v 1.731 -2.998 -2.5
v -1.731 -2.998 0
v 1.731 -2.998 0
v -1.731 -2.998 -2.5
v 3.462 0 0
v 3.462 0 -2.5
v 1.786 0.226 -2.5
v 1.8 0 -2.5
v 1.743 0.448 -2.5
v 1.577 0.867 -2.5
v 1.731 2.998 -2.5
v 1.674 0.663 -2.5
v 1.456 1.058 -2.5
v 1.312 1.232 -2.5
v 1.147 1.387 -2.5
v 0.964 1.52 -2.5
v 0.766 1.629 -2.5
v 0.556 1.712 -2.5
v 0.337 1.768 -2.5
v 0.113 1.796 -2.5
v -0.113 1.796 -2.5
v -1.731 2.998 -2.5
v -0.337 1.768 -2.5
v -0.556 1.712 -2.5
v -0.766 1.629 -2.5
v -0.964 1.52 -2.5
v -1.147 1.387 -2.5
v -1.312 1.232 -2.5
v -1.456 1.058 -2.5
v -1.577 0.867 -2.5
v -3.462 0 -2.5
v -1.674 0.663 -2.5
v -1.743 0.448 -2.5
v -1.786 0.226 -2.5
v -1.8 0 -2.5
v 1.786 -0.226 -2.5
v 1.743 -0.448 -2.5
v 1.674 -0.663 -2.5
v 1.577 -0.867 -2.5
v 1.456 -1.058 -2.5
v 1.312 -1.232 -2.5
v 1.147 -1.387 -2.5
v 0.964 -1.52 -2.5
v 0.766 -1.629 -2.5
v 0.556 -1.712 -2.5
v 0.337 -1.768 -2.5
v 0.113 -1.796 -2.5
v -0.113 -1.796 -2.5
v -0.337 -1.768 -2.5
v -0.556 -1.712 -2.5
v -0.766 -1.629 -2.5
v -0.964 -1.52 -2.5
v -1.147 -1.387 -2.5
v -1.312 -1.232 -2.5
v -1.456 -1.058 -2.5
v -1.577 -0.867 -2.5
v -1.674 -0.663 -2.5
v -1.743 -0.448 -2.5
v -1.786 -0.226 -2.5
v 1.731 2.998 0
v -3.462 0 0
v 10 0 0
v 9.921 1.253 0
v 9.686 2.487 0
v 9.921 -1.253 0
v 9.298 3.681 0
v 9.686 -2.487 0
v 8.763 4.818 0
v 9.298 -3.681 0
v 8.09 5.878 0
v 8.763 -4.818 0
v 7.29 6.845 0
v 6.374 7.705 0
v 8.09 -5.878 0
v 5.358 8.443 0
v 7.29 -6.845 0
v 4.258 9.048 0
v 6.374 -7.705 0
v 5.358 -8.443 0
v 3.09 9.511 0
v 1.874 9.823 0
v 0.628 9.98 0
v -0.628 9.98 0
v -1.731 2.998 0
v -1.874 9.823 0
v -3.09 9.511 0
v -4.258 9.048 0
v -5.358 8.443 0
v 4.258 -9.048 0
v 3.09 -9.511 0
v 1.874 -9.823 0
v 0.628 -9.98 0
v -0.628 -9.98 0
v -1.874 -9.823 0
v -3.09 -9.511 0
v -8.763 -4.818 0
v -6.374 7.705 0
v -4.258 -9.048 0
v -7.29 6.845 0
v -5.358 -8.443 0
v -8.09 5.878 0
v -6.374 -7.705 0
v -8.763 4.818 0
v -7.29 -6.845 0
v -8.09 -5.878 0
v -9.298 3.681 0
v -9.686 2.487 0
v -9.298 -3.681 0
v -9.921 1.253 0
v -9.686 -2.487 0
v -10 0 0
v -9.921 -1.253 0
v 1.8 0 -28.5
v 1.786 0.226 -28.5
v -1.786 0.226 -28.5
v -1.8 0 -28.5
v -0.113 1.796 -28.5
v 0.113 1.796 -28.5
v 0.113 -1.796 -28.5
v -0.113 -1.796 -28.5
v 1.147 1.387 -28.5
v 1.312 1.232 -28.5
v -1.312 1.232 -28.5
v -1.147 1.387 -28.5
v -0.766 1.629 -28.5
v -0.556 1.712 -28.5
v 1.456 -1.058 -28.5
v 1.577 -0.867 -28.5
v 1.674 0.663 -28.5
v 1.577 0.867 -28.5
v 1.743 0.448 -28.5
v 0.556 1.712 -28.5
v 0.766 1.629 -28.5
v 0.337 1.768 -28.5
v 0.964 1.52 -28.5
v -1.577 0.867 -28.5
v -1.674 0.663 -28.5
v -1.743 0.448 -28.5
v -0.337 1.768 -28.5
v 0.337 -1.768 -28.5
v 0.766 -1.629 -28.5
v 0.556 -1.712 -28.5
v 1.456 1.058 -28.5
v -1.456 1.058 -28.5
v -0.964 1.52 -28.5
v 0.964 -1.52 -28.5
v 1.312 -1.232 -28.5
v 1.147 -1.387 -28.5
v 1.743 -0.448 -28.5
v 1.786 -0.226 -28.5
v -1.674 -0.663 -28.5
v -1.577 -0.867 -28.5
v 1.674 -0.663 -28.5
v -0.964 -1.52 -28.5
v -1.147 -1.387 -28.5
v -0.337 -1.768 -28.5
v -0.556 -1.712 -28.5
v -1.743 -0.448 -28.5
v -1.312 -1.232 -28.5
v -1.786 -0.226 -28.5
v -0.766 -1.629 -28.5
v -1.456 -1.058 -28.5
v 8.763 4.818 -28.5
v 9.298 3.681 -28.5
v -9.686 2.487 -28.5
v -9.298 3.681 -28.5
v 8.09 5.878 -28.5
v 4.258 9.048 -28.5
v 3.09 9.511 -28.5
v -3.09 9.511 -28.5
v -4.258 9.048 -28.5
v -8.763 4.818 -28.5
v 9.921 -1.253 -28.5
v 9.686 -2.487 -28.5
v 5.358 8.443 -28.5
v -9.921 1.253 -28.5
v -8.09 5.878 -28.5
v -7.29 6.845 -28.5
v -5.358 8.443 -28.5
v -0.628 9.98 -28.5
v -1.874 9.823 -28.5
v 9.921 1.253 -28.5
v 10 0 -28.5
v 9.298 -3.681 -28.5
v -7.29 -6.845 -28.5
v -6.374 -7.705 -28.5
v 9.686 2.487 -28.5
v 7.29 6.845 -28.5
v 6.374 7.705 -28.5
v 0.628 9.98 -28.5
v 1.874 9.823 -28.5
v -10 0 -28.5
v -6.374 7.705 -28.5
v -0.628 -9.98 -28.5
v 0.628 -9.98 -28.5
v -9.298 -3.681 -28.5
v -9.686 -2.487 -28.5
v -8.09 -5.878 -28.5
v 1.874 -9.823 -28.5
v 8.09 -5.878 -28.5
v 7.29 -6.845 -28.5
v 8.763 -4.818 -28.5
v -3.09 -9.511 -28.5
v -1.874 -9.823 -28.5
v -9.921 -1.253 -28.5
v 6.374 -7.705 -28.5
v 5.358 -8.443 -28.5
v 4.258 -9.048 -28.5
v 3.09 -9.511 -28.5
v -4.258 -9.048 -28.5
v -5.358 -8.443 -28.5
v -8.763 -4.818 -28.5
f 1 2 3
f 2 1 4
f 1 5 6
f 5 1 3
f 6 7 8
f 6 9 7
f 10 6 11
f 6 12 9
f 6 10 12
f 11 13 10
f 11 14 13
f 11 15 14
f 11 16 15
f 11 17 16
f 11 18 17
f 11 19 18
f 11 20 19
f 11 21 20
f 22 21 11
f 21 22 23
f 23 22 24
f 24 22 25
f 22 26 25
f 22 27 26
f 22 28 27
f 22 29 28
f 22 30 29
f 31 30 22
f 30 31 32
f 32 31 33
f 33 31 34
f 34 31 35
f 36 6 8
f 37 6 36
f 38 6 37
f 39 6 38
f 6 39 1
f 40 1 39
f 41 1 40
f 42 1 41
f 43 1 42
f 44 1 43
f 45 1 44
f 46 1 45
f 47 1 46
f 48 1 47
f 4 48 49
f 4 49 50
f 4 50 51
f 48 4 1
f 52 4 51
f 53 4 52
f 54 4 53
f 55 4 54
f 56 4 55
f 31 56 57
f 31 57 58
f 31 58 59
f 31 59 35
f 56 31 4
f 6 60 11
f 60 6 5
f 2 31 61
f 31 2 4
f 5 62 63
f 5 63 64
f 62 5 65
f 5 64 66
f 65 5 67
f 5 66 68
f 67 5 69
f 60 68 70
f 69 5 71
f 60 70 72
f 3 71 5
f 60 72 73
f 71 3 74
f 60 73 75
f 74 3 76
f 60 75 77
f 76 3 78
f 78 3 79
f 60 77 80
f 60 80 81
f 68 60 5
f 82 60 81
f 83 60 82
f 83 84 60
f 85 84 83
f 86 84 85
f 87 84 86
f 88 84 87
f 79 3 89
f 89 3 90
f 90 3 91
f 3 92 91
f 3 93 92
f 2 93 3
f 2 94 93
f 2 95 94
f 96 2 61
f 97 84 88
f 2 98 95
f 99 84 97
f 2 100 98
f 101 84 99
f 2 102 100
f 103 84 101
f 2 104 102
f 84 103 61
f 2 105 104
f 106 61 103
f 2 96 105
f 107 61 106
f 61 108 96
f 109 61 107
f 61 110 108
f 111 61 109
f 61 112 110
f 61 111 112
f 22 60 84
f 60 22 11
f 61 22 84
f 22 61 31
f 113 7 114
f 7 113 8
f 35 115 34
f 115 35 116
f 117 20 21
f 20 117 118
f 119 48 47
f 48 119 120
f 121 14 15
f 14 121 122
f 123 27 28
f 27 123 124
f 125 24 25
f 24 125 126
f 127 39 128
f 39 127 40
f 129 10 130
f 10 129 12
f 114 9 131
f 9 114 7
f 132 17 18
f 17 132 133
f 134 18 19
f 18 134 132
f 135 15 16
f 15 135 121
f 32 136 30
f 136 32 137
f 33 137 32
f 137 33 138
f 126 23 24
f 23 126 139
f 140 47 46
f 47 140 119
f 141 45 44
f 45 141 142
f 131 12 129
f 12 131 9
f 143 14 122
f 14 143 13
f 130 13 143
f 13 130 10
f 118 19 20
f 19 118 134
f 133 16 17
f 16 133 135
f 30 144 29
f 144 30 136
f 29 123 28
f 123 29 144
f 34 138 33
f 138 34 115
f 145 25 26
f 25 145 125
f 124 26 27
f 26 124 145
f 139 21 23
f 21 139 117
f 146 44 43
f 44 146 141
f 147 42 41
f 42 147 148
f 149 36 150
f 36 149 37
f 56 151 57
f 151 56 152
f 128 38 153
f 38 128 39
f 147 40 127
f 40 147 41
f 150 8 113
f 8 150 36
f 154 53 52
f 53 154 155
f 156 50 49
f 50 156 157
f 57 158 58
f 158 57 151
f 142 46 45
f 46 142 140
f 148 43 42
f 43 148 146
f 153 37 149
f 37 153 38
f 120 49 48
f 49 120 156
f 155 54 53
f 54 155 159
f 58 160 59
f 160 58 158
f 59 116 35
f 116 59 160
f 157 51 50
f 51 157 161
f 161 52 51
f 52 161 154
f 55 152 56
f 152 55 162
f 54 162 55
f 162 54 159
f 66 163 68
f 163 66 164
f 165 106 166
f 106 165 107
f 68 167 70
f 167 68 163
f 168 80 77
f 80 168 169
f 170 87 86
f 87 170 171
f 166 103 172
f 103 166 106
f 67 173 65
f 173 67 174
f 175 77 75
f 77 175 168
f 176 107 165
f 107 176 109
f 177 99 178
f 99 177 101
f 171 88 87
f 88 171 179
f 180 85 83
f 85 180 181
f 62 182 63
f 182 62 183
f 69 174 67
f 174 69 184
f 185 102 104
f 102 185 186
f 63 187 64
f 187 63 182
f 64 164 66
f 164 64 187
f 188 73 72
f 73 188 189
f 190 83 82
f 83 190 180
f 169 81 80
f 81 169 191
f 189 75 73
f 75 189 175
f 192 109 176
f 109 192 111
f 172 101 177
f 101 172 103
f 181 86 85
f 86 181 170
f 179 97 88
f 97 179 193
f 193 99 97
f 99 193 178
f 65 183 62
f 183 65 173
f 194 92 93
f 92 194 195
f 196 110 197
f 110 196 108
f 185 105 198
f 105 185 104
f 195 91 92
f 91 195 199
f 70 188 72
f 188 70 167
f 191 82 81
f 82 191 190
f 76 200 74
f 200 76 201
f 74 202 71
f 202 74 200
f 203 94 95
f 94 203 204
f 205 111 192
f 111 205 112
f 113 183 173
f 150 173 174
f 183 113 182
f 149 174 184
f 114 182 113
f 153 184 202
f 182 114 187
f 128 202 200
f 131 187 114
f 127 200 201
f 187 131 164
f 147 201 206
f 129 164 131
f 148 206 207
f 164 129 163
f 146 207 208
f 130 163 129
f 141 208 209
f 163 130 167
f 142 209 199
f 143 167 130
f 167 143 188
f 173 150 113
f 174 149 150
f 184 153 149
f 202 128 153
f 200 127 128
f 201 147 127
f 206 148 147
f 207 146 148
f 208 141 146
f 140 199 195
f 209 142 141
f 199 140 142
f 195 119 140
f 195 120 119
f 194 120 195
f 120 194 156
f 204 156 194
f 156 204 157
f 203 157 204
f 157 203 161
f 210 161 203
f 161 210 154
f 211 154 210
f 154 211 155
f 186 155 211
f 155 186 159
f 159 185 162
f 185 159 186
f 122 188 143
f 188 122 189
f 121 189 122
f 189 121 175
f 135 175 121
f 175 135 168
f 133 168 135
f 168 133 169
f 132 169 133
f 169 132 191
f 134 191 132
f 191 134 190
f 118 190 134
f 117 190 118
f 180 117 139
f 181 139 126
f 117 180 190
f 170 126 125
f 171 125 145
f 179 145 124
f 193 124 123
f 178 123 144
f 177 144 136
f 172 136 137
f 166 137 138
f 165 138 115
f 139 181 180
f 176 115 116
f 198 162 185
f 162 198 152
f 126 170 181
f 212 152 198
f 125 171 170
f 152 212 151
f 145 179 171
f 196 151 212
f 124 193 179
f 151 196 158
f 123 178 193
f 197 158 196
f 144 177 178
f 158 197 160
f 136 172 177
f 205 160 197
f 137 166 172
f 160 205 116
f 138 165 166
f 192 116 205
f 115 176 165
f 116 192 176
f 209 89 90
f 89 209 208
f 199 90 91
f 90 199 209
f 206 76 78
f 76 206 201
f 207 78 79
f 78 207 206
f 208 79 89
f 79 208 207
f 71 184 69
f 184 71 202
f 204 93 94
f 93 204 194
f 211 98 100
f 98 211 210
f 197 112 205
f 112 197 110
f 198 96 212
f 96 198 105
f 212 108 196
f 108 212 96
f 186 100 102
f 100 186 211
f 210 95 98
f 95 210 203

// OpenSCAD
$fn = 50;


difference() {
	union() {
		translate(v = [0, 0, -28.5000000000]) {
			cylinder(h = 28.5000000000, r = 10.0000000000);
		}
	}
	union() {
		translate(v = [0, 0, 0]) {
			rotate(a = [0, 0, 0]) {
				difference() {
					union() {
						translate(v = [0, 0, -2.5000000000]) {
							linear_extrude(height = 2.5000000000) {
								polygon(points = [[3.4620000000, 0.0000000000], [1.7310000000, 2.9981799479], [-1.7310000000, 2.9981799479], [-3.4620000000, 0.0000000000], [-1.7310000000, -2.9981799479], [1.7310000000, -2.9981799479]]);
							}
						}
					}
					union();
				}
			}
		}
		#translate(v = [0, 0, -100.0000000000]) {
			cylinder(h = 200, r = 1.8000000000);
		}
	}
}
